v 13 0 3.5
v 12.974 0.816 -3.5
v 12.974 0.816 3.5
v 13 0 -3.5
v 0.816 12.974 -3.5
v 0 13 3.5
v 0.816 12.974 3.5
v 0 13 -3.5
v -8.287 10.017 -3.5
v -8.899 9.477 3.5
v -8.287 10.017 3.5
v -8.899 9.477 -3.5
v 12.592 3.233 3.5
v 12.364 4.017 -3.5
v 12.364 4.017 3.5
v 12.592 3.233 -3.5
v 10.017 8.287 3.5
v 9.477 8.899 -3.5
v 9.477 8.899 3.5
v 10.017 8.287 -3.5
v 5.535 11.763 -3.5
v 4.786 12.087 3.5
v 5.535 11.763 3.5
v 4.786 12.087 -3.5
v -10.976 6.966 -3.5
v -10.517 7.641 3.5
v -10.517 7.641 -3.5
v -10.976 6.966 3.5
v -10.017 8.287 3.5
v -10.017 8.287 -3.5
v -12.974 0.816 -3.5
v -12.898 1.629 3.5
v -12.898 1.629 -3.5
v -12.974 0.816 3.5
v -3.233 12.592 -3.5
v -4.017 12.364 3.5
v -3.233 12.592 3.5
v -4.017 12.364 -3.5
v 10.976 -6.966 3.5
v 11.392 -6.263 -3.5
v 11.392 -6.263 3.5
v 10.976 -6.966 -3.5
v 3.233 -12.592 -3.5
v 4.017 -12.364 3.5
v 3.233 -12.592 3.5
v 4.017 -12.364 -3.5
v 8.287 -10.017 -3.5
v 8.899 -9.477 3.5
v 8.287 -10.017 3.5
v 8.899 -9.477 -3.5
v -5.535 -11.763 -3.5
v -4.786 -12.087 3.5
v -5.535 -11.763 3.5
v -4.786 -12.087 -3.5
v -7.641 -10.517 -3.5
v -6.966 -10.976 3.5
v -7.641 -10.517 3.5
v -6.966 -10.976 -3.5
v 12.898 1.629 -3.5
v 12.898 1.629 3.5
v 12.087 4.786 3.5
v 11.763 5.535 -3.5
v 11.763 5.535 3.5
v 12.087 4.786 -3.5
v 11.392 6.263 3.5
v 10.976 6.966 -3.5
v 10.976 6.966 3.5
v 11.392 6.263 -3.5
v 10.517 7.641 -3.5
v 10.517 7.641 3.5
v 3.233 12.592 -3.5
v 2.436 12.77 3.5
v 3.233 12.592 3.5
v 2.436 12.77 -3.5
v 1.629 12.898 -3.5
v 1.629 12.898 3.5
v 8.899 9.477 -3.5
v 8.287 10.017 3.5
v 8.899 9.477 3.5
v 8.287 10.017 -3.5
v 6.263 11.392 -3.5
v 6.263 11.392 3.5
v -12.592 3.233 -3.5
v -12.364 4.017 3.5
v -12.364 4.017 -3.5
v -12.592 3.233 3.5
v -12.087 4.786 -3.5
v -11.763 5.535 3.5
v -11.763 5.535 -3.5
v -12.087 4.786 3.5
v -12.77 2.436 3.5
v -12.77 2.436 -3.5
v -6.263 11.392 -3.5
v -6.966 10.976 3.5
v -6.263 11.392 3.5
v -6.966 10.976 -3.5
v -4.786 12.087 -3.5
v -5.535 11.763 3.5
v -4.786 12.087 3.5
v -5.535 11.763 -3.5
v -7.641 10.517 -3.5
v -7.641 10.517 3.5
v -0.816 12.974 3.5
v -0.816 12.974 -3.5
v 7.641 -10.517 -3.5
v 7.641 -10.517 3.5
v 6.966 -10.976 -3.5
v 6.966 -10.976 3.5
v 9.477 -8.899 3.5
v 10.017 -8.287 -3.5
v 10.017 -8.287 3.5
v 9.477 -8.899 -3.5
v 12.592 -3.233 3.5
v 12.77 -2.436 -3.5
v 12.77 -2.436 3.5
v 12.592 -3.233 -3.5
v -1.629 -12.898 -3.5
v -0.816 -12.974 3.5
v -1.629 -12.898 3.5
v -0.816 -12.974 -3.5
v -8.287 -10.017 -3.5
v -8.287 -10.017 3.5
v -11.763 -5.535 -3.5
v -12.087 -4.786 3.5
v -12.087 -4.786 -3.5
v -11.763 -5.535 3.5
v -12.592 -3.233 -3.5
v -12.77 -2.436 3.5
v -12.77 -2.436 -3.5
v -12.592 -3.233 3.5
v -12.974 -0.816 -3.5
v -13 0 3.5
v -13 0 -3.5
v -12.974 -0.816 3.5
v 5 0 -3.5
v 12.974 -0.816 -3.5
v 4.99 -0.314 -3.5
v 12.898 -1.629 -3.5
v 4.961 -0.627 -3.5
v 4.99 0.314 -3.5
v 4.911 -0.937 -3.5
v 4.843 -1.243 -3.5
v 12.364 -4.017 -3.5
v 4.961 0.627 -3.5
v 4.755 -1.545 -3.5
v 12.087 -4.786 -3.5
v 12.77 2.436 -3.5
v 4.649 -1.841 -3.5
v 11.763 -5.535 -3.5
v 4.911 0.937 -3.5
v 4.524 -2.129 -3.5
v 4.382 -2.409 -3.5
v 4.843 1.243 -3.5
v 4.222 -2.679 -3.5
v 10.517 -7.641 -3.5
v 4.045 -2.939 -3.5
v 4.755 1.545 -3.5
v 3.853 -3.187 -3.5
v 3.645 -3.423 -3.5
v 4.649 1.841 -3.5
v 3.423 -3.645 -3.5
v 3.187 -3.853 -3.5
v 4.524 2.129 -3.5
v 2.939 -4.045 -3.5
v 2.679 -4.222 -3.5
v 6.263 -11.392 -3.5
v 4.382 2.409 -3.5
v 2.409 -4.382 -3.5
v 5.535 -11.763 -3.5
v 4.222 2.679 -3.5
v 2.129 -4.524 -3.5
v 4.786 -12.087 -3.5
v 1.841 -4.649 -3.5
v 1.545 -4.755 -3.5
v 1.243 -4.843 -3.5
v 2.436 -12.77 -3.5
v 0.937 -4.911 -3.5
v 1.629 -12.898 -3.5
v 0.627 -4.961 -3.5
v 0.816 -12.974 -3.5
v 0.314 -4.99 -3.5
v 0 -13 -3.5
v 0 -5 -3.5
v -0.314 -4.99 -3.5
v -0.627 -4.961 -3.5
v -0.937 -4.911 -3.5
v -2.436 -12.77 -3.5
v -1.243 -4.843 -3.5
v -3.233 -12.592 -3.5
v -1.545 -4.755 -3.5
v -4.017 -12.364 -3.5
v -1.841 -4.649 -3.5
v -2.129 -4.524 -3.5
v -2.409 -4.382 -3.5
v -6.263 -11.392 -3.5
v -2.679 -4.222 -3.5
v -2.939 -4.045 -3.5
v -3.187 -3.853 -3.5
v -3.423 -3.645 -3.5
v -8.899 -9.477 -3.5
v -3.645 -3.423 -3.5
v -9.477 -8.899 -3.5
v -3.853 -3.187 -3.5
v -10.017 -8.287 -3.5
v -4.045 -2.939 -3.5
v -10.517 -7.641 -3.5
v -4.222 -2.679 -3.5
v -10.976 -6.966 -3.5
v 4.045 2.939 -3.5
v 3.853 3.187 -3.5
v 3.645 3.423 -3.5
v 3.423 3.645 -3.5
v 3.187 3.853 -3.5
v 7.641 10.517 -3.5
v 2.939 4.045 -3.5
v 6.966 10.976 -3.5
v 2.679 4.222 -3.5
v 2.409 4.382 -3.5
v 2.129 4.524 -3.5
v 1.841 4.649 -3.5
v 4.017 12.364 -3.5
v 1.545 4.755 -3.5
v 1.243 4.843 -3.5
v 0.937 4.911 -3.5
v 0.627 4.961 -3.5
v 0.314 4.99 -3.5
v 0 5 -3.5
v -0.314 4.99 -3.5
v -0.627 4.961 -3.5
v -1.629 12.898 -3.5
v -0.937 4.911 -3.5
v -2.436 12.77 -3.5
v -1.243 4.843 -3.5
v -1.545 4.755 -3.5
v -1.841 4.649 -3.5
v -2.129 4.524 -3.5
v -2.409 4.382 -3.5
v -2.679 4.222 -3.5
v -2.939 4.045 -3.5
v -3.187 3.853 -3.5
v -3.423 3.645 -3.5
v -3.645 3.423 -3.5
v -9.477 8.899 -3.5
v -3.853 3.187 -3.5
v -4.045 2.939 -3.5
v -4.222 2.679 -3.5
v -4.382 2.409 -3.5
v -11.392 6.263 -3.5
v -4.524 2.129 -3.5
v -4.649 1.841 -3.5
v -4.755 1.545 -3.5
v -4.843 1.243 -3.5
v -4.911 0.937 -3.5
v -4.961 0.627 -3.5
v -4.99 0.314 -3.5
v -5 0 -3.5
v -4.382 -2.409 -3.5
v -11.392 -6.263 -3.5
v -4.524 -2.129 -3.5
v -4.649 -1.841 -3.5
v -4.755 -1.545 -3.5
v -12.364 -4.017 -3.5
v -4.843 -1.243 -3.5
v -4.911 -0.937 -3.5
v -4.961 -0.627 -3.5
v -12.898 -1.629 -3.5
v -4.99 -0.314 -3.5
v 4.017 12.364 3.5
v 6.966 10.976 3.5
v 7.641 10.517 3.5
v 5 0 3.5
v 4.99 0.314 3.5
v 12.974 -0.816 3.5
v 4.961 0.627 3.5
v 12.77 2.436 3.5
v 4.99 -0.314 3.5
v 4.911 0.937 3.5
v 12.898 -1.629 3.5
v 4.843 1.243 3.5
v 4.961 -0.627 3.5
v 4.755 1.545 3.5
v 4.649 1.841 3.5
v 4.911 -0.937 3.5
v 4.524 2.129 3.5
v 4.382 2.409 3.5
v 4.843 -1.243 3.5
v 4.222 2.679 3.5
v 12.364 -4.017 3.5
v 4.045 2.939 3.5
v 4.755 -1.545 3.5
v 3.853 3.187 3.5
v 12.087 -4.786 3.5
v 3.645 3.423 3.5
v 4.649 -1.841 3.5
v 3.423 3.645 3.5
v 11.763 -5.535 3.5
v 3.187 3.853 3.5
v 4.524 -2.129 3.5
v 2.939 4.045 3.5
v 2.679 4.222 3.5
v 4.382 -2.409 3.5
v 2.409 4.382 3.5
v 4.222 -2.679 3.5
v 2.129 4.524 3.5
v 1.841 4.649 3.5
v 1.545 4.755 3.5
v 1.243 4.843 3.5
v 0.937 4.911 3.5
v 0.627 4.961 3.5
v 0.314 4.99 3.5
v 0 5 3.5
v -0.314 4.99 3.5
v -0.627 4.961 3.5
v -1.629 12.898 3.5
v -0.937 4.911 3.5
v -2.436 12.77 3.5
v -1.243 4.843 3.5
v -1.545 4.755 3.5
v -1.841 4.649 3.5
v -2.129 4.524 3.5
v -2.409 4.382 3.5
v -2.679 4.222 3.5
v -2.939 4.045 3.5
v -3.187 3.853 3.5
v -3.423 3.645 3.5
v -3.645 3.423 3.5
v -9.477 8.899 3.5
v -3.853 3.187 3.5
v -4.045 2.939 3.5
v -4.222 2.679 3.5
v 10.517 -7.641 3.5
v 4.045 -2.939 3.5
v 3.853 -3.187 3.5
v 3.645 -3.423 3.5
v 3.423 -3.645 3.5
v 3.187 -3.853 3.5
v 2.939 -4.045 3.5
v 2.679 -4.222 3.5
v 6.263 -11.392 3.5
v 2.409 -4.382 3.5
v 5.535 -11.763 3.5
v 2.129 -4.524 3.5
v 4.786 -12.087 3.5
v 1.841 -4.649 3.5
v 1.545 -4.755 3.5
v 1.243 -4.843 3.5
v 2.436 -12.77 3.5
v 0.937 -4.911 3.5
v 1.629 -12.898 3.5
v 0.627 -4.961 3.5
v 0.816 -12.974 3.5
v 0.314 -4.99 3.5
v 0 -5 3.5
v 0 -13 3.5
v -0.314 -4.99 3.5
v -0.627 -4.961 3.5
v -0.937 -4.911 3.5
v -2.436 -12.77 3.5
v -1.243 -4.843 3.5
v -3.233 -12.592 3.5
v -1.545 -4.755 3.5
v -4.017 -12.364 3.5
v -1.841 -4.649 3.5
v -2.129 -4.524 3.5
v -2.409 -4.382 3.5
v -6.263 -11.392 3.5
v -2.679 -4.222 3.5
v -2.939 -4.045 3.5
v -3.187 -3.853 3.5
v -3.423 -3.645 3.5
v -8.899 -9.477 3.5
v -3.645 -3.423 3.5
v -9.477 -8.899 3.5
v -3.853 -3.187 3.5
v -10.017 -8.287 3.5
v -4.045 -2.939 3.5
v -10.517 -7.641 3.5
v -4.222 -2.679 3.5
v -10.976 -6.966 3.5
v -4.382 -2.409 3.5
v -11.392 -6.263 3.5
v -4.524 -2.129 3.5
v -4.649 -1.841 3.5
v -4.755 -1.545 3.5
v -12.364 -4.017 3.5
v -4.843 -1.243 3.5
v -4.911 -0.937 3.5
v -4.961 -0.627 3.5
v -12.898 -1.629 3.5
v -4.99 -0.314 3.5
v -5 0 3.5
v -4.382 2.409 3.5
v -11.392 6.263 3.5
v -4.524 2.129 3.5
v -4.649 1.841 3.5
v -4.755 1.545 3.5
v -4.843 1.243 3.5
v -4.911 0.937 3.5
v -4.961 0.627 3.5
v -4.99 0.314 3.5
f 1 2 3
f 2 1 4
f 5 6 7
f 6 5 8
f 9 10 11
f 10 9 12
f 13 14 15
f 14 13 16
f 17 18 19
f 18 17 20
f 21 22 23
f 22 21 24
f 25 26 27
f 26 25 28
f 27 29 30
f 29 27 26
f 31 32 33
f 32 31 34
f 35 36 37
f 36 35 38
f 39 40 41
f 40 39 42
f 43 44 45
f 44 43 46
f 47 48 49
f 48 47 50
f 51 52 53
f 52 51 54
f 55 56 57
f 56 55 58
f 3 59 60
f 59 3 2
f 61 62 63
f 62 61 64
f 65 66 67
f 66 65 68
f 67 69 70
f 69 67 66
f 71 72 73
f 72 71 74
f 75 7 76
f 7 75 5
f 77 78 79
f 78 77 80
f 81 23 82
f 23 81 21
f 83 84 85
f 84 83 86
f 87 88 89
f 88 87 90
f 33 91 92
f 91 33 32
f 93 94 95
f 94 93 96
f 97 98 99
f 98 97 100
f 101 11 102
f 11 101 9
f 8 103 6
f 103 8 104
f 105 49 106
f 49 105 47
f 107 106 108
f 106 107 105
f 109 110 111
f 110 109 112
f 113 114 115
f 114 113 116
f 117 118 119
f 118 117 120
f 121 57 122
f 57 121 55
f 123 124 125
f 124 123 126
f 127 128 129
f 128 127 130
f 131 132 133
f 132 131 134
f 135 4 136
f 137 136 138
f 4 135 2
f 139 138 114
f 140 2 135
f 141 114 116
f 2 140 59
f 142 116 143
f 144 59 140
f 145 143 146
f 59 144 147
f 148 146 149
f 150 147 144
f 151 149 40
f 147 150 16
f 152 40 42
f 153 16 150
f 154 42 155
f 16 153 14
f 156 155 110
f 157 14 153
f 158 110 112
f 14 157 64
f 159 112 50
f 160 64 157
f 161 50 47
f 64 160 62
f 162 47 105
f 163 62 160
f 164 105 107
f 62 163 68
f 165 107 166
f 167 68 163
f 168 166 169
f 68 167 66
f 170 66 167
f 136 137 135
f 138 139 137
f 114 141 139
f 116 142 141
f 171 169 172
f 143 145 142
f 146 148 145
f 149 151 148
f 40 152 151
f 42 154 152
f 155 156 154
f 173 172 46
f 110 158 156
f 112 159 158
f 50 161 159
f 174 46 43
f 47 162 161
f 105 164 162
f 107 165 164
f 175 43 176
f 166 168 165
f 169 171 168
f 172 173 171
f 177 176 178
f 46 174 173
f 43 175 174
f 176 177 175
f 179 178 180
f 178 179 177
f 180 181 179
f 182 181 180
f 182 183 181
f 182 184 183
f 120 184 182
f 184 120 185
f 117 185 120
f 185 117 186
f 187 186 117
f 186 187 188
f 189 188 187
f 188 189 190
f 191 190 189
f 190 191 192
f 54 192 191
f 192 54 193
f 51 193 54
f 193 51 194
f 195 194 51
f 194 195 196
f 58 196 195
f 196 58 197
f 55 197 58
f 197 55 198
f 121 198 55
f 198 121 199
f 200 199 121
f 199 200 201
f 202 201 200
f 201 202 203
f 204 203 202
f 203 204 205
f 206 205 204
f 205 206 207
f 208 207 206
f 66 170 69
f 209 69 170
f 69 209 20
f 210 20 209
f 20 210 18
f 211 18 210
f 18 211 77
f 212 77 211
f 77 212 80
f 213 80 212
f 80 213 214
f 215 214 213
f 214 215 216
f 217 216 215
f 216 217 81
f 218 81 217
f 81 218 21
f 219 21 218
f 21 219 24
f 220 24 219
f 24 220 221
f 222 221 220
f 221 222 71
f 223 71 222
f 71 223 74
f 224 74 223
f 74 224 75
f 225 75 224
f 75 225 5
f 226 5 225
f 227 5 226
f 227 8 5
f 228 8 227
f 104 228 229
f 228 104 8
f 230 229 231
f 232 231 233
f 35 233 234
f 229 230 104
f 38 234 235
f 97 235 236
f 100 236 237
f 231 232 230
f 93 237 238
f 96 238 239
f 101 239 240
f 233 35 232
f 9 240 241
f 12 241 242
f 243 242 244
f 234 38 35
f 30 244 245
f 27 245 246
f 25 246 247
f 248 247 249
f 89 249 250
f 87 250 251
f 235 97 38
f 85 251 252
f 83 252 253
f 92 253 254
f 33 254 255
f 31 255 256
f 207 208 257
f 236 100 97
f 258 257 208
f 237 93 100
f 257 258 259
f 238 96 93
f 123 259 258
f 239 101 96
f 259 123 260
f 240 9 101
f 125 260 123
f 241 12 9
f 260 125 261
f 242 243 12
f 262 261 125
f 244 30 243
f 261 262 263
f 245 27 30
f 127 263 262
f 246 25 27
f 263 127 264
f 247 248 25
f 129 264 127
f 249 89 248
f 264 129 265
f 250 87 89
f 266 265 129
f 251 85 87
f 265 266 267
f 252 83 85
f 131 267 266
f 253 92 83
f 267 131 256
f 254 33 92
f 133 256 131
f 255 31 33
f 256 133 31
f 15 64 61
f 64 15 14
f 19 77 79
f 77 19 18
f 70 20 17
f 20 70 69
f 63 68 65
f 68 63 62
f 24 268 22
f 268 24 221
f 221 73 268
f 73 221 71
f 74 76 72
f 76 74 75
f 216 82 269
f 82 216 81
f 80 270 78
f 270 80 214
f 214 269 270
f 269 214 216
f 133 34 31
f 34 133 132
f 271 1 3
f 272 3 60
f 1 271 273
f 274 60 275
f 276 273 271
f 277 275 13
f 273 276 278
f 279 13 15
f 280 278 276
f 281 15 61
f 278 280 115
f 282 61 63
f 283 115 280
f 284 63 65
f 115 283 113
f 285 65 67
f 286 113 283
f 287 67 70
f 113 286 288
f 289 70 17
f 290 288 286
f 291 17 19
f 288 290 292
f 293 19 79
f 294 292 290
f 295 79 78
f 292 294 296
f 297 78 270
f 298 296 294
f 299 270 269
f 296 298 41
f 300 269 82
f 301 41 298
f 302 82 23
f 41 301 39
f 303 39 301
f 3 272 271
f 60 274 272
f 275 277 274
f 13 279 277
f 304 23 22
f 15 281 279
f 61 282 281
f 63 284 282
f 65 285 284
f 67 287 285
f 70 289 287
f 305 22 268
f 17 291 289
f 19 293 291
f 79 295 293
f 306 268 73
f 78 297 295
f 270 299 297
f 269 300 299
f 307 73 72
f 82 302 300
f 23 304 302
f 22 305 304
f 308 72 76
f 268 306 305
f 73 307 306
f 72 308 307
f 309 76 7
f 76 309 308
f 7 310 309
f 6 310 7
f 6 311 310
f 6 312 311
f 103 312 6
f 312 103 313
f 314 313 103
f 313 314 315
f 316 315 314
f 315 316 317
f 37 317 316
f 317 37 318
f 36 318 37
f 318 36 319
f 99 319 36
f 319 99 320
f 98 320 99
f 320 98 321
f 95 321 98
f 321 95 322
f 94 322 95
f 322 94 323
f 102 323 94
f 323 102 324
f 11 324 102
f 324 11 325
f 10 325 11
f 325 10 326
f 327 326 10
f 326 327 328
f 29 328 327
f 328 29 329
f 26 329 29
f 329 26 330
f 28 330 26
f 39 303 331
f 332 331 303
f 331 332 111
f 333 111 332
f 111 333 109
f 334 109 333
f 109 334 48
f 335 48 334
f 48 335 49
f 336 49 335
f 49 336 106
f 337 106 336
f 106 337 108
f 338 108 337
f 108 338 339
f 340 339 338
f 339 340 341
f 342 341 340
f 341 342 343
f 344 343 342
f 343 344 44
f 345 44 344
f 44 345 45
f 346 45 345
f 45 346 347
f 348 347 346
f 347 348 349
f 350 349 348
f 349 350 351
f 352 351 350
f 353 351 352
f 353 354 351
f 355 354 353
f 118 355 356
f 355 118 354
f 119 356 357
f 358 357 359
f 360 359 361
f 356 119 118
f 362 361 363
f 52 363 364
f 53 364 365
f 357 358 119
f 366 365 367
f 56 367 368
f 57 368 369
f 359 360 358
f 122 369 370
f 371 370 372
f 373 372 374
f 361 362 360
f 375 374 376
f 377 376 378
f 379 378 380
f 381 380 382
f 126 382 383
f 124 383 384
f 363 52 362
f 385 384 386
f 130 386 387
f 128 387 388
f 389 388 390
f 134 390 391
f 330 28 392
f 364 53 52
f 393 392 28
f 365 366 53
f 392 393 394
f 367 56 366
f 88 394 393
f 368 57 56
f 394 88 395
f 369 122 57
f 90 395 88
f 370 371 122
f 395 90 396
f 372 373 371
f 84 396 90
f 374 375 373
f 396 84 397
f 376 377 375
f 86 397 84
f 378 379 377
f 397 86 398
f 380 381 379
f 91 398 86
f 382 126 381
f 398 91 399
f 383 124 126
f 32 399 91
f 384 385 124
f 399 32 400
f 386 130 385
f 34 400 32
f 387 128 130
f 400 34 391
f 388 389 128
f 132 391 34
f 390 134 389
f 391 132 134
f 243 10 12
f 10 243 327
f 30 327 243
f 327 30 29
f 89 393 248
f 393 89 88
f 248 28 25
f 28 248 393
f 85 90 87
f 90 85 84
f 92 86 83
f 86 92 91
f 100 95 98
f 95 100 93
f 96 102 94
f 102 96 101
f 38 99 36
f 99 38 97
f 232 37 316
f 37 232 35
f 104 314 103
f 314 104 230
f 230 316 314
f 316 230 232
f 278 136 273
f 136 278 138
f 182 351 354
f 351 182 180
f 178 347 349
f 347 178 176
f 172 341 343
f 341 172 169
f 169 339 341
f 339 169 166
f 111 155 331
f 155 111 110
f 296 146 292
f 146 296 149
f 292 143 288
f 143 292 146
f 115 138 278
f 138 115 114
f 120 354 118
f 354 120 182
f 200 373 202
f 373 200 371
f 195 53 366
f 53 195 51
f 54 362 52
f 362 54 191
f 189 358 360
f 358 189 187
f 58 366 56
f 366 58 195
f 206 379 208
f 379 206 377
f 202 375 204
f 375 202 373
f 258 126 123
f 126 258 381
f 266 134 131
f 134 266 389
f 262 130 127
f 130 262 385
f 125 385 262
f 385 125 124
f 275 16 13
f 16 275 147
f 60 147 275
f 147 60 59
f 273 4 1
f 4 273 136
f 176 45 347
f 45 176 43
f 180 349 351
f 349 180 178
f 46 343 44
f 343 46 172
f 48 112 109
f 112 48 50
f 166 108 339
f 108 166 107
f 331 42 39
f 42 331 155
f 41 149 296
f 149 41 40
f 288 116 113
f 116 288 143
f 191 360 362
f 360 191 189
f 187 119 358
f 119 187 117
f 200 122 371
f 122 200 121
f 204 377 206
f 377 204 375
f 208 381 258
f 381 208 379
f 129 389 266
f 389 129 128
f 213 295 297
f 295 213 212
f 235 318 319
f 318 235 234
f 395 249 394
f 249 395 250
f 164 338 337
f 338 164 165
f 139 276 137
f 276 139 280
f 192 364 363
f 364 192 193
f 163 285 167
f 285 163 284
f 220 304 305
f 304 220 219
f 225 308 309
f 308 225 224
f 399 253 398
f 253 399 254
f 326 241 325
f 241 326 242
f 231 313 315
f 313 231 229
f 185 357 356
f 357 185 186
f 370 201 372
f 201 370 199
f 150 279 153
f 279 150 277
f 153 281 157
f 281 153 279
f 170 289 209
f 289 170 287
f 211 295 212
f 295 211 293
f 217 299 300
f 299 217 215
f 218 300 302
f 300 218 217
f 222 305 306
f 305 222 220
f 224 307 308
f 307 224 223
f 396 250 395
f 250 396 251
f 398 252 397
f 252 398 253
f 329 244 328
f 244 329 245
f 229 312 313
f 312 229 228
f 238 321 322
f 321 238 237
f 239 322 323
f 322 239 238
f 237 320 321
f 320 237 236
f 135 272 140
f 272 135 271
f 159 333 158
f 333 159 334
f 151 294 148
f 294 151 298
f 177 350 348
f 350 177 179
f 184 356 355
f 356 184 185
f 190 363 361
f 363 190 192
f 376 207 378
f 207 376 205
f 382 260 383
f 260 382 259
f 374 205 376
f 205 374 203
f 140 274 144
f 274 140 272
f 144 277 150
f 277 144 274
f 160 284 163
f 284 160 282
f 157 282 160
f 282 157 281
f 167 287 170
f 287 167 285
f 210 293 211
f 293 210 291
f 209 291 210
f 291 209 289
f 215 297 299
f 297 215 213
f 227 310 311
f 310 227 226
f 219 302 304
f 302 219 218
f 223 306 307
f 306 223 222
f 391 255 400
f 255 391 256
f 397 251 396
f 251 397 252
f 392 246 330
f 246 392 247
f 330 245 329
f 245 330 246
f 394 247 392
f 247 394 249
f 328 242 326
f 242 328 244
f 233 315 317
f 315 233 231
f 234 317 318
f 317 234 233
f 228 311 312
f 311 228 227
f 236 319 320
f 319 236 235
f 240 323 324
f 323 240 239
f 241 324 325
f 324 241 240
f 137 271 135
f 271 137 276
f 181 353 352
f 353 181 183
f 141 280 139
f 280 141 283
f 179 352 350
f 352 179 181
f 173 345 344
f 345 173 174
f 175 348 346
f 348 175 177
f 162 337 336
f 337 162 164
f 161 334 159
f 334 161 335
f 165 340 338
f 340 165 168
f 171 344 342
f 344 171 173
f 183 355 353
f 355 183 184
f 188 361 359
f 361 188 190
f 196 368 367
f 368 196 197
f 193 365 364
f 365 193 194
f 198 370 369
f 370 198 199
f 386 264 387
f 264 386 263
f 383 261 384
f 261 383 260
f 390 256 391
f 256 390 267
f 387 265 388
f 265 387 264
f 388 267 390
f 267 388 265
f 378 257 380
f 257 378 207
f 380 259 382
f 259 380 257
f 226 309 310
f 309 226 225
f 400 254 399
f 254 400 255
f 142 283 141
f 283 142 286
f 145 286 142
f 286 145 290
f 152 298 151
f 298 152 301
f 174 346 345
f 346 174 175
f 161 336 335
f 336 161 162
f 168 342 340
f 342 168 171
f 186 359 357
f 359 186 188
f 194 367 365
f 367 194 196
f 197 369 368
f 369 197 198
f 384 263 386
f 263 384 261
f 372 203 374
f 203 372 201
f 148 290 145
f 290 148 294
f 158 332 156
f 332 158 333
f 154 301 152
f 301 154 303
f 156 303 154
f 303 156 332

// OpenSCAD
// Cylindrical spacer with 7 mm height, 26 mm outer diameter, 10 mm inner hole
difference() {
    // Main spacer body
    cylinder(h = 7, d = 26, center = true, $fn = 100);
    
    // Central 10 mm hole
    cylinder(h = 7.1, d = 10, center = true, $fn = 100);
}
